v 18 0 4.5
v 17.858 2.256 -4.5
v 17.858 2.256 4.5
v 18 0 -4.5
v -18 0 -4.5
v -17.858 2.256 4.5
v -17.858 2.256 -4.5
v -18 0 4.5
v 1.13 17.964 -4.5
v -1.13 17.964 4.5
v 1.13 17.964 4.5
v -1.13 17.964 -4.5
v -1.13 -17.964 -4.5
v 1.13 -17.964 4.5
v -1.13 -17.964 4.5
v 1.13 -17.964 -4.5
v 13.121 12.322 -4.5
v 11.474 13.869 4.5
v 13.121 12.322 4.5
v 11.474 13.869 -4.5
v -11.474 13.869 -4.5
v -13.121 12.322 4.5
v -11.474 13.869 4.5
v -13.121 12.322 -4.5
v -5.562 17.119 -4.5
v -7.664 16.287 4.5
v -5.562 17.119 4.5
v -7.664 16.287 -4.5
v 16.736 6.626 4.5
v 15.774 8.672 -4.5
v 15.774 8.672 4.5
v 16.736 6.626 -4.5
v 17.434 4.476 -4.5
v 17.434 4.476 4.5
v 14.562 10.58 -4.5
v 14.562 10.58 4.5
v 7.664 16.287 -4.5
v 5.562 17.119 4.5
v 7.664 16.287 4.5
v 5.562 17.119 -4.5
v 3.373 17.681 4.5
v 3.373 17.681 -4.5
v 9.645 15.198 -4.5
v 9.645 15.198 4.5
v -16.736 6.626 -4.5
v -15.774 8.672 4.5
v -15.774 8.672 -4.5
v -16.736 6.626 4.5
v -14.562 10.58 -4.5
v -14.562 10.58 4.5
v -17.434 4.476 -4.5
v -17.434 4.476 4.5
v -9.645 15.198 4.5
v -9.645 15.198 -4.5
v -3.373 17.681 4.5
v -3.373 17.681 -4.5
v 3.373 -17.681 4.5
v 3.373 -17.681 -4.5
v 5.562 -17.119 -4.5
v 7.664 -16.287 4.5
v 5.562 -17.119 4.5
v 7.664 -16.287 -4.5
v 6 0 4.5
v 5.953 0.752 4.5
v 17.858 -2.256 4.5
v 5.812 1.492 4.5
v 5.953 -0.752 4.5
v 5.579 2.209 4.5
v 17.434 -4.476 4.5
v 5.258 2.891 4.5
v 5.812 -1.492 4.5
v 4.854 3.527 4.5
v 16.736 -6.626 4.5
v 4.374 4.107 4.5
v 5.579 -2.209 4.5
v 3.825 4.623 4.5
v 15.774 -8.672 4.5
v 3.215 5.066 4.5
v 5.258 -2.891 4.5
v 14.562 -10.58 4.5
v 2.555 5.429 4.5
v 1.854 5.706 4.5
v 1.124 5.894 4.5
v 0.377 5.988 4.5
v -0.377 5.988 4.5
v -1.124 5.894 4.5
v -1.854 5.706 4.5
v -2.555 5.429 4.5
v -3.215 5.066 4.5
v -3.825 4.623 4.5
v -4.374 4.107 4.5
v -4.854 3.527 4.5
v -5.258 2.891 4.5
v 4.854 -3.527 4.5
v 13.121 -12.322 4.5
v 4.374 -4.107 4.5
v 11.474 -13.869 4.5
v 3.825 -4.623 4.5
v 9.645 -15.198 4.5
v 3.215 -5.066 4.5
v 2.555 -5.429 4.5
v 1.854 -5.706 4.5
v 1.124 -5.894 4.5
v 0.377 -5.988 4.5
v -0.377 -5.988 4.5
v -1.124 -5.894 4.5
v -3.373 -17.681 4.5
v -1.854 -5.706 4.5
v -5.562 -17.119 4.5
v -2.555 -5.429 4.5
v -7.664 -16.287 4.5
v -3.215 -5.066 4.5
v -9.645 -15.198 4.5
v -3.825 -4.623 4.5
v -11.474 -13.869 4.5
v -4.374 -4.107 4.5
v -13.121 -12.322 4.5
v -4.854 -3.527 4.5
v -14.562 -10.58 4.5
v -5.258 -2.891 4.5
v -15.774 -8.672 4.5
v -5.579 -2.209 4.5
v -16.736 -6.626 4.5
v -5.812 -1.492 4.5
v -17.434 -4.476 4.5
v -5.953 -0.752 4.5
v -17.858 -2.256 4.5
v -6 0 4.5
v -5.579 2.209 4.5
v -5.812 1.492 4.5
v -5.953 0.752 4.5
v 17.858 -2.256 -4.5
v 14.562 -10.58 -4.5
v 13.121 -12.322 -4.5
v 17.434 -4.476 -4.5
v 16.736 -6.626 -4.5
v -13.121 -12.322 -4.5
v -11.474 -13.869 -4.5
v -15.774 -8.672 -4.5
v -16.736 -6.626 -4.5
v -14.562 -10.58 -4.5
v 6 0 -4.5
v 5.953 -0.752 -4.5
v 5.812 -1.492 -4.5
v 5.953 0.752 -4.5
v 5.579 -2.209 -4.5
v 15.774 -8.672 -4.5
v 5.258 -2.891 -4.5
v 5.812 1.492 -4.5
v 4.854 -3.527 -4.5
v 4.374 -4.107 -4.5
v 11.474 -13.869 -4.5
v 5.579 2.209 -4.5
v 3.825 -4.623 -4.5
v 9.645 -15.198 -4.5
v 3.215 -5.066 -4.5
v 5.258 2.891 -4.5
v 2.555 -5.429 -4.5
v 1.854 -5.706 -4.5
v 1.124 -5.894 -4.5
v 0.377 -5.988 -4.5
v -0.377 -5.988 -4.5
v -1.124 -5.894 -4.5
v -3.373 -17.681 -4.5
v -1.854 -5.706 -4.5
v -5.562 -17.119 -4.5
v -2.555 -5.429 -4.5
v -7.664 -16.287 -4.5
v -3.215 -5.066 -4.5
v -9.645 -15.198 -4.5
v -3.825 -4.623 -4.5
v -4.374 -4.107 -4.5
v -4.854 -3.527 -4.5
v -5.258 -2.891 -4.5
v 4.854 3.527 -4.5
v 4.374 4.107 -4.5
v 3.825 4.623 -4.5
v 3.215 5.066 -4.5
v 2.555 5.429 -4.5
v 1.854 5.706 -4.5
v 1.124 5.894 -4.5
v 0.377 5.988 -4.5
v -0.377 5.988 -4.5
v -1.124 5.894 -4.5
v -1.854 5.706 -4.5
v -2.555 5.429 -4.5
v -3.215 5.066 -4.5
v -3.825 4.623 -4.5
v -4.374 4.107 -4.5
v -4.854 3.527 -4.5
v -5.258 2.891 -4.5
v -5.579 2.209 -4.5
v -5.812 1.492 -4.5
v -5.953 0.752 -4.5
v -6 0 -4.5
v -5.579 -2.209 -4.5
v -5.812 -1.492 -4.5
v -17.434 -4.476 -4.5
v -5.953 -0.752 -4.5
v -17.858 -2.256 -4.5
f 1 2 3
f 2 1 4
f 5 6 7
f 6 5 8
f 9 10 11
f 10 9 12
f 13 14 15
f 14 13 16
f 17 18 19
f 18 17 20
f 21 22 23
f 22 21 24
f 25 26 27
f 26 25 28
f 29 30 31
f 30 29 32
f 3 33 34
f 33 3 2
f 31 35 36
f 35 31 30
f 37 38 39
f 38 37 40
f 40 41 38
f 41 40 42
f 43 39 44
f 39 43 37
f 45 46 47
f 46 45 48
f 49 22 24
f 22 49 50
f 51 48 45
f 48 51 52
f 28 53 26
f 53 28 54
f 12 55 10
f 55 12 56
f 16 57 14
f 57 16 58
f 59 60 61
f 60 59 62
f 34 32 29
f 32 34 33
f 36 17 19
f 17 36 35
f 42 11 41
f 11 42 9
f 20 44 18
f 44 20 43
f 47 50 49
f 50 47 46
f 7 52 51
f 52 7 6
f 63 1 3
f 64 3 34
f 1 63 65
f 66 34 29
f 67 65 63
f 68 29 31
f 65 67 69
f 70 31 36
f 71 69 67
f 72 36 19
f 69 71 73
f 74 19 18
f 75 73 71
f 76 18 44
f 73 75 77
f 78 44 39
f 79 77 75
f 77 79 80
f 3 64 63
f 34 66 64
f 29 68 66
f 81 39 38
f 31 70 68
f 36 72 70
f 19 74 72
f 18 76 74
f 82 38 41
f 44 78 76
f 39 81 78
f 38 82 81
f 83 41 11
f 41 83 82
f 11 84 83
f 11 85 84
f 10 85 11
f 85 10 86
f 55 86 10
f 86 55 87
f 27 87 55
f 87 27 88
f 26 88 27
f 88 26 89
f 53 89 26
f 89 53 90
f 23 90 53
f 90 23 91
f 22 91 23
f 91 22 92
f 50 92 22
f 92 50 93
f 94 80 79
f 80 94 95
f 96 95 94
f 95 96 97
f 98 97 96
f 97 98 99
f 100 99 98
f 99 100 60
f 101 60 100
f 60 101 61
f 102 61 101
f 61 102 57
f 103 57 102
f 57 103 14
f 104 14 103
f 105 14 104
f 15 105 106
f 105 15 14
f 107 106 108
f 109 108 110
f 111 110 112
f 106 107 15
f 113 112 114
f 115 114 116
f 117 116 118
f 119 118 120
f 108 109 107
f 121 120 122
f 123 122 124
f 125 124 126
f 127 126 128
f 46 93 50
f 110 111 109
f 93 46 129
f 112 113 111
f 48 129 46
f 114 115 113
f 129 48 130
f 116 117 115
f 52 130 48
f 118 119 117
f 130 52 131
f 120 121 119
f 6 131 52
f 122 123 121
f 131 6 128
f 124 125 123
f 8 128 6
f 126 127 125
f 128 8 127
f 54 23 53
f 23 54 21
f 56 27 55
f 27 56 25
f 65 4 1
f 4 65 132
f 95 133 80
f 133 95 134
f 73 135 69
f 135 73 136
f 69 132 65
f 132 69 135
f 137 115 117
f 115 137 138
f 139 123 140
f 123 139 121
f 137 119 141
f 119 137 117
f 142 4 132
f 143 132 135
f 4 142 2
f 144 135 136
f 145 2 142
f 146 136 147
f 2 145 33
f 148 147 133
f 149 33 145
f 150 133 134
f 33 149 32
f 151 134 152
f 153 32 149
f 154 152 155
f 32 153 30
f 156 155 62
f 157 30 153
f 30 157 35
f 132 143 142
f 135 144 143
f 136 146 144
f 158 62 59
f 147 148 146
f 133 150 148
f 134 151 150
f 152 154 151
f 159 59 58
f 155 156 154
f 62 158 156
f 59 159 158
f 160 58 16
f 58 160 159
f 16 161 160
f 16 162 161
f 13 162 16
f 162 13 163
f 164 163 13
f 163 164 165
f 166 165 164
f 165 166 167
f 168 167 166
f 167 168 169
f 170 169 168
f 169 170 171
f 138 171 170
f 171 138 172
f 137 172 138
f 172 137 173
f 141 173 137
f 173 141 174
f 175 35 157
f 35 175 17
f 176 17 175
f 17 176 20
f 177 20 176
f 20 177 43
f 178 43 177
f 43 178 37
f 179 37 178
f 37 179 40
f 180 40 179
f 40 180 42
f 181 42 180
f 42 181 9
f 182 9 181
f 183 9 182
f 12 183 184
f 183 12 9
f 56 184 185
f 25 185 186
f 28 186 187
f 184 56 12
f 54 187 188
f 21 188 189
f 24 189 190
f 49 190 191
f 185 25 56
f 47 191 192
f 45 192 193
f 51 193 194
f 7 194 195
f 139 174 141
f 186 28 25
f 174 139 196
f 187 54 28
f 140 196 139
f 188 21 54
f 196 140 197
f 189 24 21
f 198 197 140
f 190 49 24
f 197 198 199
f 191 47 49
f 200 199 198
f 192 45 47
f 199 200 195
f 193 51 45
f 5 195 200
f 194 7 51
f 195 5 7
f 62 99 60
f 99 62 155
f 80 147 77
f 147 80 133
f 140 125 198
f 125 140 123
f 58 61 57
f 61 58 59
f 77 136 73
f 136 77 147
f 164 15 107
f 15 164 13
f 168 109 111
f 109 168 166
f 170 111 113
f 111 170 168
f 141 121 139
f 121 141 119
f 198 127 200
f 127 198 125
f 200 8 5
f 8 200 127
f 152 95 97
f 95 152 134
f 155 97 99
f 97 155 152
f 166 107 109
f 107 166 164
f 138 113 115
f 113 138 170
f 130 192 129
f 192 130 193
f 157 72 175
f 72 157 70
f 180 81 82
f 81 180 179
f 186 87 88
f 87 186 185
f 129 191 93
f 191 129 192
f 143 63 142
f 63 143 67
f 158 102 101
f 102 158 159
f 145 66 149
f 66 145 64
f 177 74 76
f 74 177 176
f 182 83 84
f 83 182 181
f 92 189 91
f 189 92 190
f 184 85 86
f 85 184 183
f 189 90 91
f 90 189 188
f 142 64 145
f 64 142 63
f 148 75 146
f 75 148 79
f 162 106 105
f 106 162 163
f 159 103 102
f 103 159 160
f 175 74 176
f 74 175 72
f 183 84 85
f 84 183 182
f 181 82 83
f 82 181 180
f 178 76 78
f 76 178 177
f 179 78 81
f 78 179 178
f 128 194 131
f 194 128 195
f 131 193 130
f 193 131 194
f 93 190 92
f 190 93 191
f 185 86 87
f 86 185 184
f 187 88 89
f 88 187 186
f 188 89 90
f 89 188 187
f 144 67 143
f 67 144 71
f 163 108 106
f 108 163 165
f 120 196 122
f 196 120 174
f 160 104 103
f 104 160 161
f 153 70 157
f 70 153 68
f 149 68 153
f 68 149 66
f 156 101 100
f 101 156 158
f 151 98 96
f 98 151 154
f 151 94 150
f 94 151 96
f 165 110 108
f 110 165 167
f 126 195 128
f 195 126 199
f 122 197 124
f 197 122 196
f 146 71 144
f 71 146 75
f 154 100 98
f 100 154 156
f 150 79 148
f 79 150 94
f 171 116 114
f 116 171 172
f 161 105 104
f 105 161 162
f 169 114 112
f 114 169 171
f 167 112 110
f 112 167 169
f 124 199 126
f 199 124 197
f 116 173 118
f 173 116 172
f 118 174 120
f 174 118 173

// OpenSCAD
$fn = 50;


difference() {
	union() {
		translate(v = [0, 0, -4.5000000000]) {
			cylinder(h = 9, r = 18.0000000000);
		}
	}
	union() {
		translate(v = [0, 0, -100.0000000000]) {
			cylinder(h = 200, r = 6);
		}
	}
}
